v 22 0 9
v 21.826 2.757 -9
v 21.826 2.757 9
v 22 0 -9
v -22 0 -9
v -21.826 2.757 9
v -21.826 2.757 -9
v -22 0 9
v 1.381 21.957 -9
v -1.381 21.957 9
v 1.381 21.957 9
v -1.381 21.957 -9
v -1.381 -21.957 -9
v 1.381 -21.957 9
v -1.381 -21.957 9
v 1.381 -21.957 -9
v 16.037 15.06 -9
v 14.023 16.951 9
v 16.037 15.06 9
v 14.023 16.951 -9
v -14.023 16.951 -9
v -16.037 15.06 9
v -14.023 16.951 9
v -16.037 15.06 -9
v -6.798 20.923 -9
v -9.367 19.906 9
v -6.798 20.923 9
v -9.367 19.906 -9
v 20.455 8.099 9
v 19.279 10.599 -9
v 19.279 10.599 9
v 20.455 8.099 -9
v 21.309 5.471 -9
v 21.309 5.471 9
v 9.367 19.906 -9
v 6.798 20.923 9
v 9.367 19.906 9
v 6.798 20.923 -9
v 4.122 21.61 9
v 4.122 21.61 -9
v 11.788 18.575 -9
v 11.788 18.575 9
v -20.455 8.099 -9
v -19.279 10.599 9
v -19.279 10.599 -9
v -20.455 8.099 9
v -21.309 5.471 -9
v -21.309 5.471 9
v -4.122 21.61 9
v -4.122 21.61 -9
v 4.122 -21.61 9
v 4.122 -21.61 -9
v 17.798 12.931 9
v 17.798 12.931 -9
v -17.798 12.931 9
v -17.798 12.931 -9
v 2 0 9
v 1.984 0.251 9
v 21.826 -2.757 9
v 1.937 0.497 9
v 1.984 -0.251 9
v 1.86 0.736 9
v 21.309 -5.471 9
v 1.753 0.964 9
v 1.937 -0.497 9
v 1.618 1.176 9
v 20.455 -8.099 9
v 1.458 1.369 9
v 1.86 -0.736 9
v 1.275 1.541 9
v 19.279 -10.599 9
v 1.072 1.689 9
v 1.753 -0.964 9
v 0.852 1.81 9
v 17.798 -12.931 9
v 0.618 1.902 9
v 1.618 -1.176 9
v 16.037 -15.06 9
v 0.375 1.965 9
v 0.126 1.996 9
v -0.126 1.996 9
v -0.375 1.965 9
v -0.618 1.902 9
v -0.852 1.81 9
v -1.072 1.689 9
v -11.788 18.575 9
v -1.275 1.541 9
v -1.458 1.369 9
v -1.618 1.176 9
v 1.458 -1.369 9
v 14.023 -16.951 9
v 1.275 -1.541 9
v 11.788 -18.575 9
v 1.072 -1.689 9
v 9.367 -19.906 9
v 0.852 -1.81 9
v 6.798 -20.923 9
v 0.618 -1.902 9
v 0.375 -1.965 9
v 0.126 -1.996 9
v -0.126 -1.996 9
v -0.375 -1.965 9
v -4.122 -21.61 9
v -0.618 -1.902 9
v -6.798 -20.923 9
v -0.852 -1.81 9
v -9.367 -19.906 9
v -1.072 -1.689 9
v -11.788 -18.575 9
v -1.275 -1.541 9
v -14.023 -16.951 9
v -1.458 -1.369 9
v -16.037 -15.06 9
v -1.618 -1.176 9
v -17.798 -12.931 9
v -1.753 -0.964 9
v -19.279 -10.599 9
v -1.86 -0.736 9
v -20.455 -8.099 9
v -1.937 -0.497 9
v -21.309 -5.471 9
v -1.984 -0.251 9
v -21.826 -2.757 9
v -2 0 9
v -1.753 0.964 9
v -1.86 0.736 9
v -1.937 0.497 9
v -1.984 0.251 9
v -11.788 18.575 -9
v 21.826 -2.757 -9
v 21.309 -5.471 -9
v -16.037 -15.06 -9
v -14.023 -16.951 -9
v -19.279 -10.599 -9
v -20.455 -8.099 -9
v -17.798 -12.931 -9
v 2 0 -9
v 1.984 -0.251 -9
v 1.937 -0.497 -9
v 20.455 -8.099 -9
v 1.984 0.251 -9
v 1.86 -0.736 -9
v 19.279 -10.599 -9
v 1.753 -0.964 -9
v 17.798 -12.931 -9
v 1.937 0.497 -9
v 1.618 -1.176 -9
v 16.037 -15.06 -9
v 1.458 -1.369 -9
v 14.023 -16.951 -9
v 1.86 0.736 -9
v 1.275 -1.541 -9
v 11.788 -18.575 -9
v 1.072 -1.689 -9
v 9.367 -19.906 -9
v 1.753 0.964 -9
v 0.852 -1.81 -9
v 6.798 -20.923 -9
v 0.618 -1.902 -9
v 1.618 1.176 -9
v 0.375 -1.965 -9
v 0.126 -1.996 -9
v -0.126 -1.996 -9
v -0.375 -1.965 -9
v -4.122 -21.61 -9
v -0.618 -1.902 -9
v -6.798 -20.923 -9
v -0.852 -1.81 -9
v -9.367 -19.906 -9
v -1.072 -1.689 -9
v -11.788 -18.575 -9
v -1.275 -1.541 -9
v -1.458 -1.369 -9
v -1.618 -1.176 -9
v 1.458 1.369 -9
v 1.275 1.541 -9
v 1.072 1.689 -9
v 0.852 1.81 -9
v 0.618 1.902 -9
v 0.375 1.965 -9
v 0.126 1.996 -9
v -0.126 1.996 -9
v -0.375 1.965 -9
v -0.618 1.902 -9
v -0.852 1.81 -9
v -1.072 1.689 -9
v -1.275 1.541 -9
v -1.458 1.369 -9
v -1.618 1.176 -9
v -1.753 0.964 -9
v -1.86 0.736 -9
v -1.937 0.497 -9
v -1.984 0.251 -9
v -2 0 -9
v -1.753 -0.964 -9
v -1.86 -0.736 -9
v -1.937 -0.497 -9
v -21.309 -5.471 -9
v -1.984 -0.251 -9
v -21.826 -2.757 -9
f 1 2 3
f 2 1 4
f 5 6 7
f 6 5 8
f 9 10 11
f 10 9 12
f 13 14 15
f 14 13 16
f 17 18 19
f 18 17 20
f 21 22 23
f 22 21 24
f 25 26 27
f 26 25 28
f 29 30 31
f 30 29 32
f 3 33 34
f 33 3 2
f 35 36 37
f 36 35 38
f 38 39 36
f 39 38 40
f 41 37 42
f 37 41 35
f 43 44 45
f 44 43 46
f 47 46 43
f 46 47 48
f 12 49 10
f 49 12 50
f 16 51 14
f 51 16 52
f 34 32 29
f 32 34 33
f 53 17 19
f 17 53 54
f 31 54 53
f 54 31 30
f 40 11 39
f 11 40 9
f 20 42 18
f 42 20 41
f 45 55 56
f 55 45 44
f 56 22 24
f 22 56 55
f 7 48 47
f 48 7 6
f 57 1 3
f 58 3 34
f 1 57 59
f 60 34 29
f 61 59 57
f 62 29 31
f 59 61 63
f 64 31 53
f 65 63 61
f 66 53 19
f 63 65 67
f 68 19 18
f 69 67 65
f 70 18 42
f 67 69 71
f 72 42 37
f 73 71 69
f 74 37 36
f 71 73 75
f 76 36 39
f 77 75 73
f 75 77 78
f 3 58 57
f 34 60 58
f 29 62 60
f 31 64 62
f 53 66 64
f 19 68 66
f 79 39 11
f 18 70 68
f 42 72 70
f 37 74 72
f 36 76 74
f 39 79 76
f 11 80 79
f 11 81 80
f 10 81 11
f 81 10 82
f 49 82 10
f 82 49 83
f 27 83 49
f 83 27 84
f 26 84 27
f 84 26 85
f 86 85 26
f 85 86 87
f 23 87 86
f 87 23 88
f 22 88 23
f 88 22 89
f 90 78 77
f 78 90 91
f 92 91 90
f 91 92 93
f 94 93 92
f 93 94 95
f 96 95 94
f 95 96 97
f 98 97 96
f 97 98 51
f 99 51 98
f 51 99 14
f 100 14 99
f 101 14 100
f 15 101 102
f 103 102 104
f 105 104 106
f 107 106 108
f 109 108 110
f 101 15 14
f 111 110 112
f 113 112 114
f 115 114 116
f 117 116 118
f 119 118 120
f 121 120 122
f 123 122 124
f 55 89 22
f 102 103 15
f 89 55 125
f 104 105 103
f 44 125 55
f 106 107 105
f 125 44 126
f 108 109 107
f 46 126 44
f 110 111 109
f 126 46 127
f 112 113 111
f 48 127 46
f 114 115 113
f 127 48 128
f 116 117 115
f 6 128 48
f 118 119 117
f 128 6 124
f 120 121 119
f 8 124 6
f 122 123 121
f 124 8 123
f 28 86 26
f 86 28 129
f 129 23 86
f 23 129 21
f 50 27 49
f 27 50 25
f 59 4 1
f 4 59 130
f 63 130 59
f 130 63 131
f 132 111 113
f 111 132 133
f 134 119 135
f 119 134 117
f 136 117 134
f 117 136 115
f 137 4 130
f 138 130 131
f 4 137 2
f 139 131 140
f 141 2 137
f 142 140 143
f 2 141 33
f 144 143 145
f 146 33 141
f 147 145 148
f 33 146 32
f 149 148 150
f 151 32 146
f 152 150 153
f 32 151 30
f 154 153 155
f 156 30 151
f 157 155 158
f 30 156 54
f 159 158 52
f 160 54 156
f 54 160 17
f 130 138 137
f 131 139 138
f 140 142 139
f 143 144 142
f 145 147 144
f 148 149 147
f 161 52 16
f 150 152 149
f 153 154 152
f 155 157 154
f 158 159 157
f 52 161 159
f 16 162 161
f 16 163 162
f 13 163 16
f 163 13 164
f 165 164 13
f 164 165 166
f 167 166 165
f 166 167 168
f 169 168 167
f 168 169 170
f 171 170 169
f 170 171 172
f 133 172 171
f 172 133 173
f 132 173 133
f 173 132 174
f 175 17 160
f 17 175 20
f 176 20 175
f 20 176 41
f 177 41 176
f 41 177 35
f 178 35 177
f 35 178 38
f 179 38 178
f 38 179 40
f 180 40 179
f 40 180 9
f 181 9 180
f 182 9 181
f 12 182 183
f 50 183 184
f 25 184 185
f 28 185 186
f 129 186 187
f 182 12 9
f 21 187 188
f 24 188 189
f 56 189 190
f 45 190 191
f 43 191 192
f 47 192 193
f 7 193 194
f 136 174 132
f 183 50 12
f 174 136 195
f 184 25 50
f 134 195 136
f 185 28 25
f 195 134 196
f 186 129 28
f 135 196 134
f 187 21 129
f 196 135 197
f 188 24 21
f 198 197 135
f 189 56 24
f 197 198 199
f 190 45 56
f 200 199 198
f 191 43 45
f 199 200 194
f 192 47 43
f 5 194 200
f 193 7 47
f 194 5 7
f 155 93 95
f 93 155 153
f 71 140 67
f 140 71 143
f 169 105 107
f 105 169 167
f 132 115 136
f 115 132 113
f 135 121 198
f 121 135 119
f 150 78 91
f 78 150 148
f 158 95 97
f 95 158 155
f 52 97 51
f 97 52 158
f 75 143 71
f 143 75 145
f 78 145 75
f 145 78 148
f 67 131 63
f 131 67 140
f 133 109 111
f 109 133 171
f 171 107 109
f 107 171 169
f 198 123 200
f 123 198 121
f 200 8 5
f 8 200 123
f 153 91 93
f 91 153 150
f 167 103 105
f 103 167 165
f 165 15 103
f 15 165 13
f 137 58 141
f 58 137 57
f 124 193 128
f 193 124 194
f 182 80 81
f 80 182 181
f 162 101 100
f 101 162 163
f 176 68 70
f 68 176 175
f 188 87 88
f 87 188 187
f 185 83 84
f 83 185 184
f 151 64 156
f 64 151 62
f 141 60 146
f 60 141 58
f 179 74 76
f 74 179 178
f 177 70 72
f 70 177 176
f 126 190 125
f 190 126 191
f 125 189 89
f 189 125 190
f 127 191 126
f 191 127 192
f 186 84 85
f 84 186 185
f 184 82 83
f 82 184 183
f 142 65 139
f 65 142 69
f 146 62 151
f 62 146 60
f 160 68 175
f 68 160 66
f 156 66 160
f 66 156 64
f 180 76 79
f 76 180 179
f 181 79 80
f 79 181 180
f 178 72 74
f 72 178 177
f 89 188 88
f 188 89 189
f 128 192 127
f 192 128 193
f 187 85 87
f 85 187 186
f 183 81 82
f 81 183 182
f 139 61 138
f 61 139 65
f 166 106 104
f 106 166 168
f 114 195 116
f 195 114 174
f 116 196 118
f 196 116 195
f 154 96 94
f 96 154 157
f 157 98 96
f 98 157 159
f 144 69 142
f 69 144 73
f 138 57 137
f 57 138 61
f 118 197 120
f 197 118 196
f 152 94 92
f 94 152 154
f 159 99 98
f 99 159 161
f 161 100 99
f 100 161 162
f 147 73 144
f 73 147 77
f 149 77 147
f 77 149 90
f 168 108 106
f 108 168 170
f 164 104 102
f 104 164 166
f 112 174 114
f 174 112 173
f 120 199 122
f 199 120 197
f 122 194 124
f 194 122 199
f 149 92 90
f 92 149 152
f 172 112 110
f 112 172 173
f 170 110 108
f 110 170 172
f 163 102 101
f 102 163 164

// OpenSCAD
$fn = 50;


difference() {
	union() {
		translate(v = [0, 0, -9.0000000000]) {
			cylinder(h = 18, r = 22.0000000000);
		}
	}
	union() {
		translate(v = [0, 0, -100.0000000000]) {
			cylinder(h = 200, r = 2.0000000000);
		}
	}
}
